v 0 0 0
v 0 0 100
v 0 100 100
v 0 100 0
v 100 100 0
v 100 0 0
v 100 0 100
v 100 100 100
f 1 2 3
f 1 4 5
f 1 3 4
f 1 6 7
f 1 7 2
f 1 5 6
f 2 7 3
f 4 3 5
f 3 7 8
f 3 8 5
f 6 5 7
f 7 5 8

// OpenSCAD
// Start: lazy_union
default_5_default_5();
// End: lazy_union

// Modules.

// 'PartMaterial undef-default - default 5.0'
module default_5_default_5() {
  // 'None : _combine_solids_and_holes'
  union() {
    // 'one_face : _combine_solids_and_holes'
    union() {
      // 'one_face'
      cube(size=[100.0, 100.0, 100.0]);
    }
  }
} // end module default_5_default_5
